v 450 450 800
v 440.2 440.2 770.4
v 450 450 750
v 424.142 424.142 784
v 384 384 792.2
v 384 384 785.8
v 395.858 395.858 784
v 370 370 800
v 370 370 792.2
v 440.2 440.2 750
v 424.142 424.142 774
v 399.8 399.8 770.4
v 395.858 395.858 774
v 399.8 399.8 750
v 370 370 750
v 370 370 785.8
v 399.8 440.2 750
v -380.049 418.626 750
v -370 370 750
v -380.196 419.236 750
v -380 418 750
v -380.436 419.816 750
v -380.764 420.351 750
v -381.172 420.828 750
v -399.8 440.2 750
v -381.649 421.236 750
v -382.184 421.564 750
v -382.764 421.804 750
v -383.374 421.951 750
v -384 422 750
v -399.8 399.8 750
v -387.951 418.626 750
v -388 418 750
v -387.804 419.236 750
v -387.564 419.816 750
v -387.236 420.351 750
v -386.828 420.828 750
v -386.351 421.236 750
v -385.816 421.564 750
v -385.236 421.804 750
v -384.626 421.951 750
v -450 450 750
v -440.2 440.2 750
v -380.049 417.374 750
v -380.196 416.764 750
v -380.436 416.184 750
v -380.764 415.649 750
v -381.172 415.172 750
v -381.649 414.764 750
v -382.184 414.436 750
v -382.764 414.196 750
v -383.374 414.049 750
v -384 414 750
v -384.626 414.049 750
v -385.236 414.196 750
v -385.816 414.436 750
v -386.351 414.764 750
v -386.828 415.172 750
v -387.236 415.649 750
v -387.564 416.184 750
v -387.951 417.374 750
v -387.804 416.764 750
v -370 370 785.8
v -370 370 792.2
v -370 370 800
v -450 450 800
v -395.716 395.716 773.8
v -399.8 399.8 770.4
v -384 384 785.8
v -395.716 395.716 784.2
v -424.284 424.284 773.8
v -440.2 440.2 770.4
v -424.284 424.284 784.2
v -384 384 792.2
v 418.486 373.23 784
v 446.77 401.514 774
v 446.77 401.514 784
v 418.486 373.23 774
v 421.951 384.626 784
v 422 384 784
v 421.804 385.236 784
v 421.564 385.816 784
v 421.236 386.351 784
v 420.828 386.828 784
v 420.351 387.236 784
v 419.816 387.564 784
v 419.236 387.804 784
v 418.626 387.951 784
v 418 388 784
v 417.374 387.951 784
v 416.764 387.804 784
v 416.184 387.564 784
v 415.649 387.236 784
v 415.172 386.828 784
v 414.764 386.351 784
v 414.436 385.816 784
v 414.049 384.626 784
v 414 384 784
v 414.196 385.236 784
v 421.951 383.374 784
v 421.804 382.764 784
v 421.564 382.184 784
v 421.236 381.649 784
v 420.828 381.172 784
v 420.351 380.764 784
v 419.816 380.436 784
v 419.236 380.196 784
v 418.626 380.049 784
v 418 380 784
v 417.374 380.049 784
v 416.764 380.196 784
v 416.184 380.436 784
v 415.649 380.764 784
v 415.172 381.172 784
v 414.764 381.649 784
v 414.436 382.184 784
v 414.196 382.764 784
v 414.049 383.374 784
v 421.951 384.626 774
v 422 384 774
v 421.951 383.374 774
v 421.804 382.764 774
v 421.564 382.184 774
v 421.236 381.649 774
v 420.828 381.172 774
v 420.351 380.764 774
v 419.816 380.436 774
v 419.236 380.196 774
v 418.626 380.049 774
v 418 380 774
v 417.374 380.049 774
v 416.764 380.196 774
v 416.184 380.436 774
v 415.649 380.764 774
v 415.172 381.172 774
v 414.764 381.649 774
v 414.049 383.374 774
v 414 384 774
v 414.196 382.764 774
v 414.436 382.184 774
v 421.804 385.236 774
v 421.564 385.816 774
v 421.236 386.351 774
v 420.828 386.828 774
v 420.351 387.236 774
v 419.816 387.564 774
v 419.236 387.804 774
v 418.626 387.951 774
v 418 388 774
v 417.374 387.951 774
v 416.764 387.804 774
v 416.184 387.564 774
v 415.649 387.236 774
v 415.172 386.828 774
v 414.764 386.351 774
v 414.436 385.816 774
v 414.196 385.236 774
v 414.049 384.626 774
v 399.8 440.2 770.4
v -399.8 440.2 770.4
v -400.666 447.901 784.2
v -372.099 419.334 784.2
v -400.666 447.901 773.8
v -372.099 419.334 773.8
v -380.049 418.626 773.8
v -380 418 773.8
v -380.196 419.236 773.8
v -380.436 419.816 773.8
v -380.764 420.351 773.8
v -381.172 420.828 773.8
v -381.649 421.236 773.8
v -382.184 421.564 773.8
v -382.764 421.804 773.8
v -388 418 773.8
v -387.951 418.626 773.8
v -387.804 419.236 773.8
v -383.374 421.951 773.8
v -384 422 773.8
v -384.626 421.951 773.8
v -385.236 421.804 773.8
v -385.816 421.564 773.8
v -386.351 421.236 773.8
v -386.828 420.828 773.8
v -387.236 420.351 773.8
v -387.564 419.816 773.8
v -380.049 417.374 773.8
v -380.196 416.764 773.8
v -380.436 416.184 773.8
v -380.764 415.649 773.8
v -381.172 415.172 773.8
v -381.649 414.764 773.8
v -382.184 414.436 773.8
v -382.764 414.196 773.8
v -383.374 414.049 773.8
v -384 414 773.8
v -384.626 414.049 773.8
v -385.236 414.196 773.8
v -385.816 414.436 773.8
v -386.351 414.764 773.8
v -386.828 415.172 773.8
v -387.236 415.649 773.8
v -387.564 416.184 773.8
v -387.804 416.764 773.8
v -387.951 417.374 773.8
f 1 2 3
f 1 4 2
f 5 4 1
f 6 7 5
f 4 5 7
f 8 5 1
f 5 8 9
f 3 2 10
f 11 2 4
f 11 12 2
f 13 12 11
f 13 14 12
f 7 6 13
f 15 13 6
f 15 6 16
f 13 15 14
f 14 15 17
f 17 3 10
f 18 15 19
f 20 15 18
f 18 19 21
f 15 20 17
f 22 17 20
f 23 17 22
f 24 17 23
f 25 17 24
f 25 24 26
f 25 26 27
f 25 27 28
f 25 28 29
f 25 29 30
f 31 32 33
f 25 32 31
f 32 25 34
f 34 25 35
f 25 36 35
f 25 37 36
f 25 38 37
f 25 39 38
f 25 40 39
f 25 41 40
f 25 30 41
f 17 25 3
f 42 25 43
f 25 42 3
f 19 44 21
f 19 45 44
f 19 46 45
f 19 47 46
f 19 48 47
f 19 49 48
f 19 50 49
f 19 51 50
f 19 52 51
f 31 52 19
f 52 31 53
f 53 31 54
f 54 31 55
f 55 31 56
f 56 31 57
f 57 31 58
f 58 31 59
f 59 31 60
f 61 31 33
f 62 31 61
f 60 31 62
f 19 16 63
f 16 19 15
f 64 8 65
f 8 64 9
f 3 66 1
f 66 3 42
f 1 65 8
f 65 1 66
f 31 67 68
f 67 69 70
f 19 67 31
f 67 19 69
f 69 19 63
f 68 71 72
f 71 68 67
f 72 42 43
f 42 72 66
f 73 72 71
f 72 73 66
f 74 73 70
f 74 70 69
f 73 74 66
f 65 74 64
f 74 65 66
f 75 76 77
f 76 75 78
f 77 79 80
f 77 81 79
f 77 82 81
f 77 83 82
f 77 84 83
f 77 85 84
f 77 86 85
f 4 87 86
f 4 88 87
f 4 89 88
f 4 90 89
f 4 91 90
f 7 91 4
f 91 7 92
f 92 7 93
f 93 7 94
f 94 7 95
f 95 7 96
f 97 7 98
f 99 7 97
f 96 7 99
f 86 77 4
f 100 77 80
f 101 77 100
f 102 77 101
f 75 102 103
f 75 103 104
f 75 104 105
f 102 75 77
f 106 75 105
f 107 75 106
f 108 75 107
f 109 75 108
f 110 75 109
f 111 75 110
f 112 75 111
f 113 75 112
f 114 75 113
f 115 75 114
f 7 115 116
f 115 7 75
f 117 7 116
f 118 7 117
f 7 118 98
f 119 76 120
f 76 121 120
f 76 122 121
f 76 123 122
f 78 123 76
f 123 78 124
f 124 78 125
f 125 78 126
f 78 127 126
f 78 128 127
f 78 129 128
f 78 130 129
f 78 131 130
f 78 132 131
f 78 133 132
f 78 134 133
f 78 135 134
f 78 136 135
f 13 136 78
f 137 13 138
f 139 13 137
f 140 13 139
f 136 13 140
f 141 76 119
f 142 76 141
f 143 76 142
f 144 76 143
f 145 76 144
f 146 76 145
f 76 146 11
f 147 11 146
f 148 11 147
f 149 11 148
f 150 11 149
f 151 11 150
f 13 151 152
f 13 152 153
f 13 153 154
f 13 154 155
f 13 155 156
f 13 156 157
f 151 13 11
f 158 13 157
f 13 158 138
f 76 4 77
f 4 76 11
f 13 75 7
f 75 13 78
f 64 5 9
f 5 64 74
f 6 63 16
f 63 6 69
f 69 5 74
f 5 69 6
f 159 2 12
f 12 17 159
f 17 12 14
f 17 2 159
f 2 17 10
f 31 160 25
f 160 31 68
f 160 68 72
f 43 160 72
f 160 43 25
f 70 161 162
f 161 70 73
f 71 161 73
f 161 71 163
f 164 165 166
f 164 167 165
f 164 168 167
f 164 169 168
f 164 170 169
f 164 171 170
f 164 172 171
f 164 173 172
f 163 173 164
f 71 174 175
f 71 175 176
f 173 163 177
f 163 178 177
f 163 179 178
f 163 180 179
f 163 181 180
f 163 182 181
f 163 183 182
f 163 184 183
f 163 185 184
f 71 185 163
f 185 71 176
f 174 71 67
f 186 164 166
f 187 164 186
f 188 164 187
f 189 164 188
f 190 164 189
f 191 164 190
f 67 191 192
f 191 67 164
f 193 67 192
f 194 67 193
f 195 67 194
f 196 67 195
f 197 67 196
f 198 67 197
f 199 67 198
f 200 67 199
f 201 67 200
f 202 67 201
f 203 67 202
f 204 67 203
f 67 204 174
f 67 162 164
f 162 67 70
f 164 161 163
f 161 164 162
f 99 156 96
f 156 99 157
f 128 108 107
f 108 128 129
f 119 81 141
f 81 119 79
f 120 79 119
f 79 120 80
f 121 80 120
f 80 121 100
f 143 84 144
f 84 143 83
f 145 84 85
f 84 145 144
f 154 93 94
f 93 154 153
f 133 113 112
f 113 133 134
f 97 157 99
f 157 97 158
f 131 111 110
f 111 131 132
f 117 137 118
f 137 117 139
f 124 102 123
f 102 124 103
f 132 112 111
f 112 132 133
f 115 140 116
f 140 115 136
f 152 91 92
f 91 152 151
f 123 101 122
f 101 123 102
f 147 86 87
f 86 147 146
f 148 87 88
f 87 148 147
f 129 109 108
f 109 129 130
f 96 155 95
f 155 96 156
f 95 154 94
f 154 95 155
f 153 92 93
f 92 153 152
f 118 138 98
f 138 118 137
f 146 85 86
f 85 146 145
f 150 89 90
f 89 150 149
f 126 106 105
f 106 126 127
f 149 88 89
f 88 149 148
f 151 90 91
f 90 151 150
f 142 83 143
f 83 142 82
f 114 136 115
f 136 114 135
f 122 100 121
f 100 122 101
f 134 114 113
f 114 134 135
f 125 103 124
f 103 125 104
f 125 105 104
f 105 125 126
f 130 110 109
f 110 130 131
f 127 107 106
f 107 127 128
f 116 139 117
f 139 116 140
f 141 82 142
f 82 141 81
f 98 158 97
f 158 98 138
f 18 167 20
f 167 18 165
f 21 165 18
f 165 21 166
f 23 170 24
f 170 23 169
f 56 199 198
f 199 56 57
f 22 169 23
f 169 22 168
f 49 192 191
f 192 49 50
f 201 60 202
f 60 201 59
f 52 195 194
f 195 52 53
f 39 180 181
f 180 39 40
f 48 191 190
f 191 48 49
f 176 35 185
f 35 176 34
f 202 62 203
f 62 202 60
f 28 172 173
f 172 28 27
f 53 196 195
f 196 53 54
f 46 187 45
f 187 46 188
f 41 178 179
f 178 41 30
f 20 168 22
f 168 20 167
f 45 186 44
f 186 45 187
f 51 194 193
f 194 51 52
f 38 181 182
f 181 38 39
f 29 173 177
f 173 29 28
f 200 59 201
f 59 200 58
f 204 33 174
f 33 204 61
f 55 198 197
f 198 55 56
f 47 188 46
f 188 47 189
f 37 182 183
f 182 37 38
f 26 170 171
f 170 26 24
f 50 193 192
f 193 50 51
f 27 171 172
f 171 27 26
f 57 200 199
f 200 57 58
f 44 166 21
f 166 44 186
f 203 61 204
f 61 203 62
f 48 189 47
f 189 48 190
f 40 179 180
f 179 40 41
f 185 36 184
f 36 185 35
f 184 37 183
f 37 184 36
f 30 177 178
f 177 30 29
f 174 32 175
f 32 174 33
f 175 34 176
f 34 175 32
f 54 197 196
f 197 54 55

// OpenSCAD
// file: parts.scad
$fn=40;

// ---- 桌腿 ----

module leg(){
  difference(){
    union(){
      translate([390.000,390.000,0.000]) cube([60.000,60.000,750.000]);
      translate([400.000,400.000,750.000]) cube([40.000,40.000,20.000]);
    }
    // 牙板透榫槽（沿 +x，+y 侧牙板 A 端穿入）
    translate([389.000,426.800,699.800]) cube([62.000,14.400,40.400]);
    // 牙板闷榫槽（沿 +y，+x 侧牙板 B 端）
    translate([426.800,389.000,699.800]) cube([14.400,23.200,40.400]);
  }
}

// ---- 边框 ----

module rail(){
  difference(){
    union(){
      translate([0,0,750]) linear_extrude(height=50) polygon(points=[[-370,370],[370,370],[450.0,450.0],[-450.0,450.0]]);
      translate([420.607,399.393,779.0]) rotate([0,0,-45]) cube([34,40,10],center=true);
    }
    // 面板槽：全长开通至 45° 端面（角部两框的槽合起来成 L 形）
    translate([-450.000,370.000,785.800]) cube([900.000,14.000,6.400]);
    // 腿顶榫卯（两端各半，合起来 40x40x20）
    translate([399.800,399.800,750.000]) cube([40.400,40.400,20.400]);
    translate([-440.200,399.800,750.000]) cube([40.400,40.400,20.400]);
    // 格角暗榫卯
    translate([-398.545,421.455,779.0]) rotate([0,0,45]) cube([34.4,40.4,10.4],center=true);
    // 竹销孔：+x 端穿暗榫，-x 端穿本体
    translate([418,384,750]) cylinder(h=34,r=4.0,$fn=40);
    translate([-384,418,750]) cylinder(h=34,r=4.0,$fn=40);
  }
}

// ---- 牙板 ----

module apron(){
  difference(){
    union(){
      translate([-390.000,424.000,680.000]) cube([780.000,20.000,70.000]);
      // A 端：透榫（390..460）
      translate([390.000,427.000,700.000]) cube([70.000,14.000,40.000]);
      // B 端：闷榫（-412..-390）
      translate([-412.000,427.000,700.000]) cube([22.000,14.000,40.000]);
    }
    hull(){ translate([375.000,423.500,680.000]) cube([15.000,21.000,0.200]); translate([389.800,423.500,680.000]) cube([0.200,21.000,15.000]); }
    hull(){ translate([-390.000,423.500,680.000]) cube([15.000,21.000,0.200]); translate([-390.000,423.500,680.000]) cube([0.200,21.000,15.000]); }
    // 透榫楔槽（横槽，撑开榫头上下两片）
    translate([428.000,426.900,718.400]) cube([32.200,14.200,3.200]);
  }
}

// ---- 面板-边板 ----

module panel_outer(){
  difference(){
    union(){
      translate([-365.000,-365.000,778.000]) cube([730.000,244.000,22.000]);
      translate([0,0,786]) linear_extrude(height=6) polygon(points=[[-379,-121],[-379,-377],[-377,-379],[377,-379],[379,-377],[379,-121],[365,-121],[365,-365],[-365,-365],[-365,-121]]);
    }
    // 内侧龙凤榫槽（向板内 8 深：y -129..-121）
    translate([-365.000,-129.000,785.800]) cube([730.000,8.000,6.400]);
    // 穿带燕尾槽
    hull(){ translate([-259.200,-365.000,778.000]) cube([30.400,244.000,0.100]); translate([-266.200,-365.000,783.900]) cube([44.400,244.000,0.100]); }
    hull(){ translate([-15.200,-365.000,778.000]) cube([30.400,244.000,0.100]); translate([-22.200,-365.000,783.900]) cube([44.400,244.000,0.100]); }
    hull(){ translate([228.800,-365.000,778.000]) cube([30.400,244.000,0.100]); translate([221.800,-365.000,783.900]) cube([44.400,244.000,0.100]); }
  }
}

// ---- 面板-中板 ----

module panel_middle(){
  difference(){
    union(){
      translate([-365.000,-121.000,778.000]) cube([730.000,242.000,22.000]);
      translate([365.000,-121.000,786.000]) cube([14.000,242.000,6.000]);
      translate([-379.000,-121.000,786.000]) cube([14.000,242.000,6.000]);
    }
    // 两侧龙凤榫槽（各向板内 8 深）
    translate([-365.000,-121.000,785.800]) cube([730.000,8.000,6.400]);
    translate([-365.000,113.000,785.800]) cube([730.000,8.000,6.400]);
    hull(){ translate([-259.200,-121.000,778.000]) cube([30.400,242.000,0.100]); translate([-266.200,-121.000,783.900]) cube([44.400,242.000,0.100]); }
    hull(){ translate([-15.200,-121.000,778.000]) cube([30.400,242.000,0.100]); translate([-22.200,-121.000,783.900]) cube([44.400,242.000,0.100]); }
    hull(){ translate([228.800,-121.000,778.000]) cube([30.400,242.000,0.100]); translate([221.800,-121.000,783.900]) cube([44.400,242.000,0.100]); }
  }
}

// ---- 穿带 ----

module cleat(){
  union(){
    translate([-20.000,-363.000,752.000]) cube([40.000,726.000,26.000]);
    hull(){
      translate([-15.000,-363.000,777.900]) cube([30.000,726.000,0.050]);
      translate([-22.000,-363.000,783.800]) cube([44.000,726.000,0.100]);
    }
  }
}

// ---- 穿簧 ----
module spline(){ translate([-360.000,-7.800,786.100]) cube([720.000,15.600,5.800]); }
// ---- 木楔 ----
module wedge(){ hull(){ translate([435.000,427.400,719.400]) cube([1.000,13.200,1.200]); translate([467.000,427.400,718.500]) cube([1.000,13.200,3.000]); } }
// ---- 竹销 ----
module pin(){ translate([0,0,750]) cylinder(h=34,r=4.0,$fn=40); }
// main file
// 边框（0° 基准件，位于整机坐标系中）
include <parts.scad>
rail();
